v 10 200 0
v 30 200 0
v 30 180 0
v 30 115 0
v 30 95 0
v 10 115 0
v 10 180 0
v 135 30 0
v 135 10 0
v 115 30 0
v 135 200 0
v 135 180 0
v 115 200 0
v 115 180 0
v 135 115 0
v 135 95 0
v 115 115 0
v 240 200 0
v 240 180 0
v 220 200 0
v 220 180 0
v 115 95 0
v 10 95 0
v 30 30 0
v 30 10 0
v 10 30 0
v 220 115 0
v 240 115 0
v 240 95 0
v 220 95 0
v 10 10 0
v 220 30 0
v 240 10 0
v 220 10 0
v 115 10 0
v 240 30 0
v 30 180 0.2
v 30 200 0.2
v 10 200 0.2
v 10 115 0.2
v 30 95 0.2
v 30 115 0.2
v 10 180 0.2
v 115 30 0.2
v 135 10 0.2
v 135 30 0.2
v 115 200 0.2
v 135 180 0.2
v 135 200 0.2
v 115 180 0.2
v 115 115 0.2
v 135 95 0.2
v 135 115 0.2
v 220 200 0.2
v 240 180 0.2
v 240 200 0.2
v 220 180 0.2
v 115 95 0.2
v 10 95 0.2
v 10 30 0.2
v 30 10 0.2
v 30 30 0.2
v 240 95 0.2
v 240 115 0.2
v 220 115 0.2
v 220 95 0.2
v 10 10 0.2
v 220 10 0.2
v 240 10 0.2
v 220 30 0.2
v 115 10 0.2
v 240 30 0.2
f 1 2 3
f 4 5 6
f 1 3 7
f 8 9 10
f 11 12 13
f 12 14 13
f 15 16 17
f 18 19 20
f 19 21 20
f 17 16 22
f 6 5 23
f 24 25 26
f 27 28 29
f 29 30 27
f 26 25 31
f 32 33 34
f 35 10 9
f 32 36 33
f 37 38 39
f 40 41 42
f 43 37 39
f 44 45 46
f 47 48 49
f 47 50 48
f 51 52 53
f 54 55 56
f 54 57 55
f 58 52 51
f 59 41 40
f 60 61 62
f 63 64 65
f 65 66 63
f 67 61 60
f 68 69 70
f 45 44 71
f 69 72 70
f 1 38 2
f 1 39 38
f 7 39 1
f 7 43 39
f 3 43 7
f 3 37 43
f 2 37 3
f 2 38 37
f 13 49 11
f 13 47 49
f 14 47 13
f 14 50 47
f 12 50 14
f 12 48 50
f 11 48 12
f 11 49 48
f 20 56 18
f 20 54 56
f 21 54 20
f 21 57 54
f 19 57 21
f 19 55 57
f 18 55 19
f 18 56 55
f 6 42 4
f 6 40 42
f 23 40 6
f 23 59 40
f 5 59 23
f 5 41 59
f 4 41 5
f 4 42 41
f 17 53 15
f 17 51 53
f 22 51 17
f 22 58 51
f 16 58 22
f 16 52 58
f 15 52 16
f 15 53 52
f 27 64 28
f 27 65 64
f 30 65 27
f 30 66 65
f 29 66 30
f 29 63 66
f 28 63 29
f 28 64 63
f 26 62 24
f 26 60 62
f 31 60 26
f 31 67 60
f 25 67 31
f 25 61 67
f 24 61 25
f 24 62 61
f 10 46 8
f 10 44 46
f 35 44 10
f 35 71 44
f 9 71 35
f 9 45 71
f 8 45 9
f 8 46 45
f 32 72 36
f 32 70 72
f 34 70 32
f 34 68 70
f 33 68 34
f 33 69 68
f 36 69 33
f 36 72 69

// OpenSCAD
// maximum X dimension of the bed, in mm
bedXMax = 250;  
// maximum Y dimension of the bed, in mm
bedYMax = 210;
// bed margins -- no patches in this border area
bedMargin = 10;
// the sides of the square patches, in mm
patchSize = 20;
// the thickness of the patches, in mm --- match your first layer height
patchThickness = 0.2;

module patch(centerX,centerY,patchSize){
    translate([centerX,centerY,0]) square(patchSize,center=true);
}
linear_extrude(patchThickness,center=false) {
for (x=[bedMargin+patchSize/2,bedXMax/2,bedXMax-bedMargin-patchSize/2]) {
    for(y=[bedMargin+patchSize/2,bedYMax/2,bedYMax-bedMargin-patchSize/2]) {
        patch(x, y, patchSize);
    }} // for y, x
}//extrude
